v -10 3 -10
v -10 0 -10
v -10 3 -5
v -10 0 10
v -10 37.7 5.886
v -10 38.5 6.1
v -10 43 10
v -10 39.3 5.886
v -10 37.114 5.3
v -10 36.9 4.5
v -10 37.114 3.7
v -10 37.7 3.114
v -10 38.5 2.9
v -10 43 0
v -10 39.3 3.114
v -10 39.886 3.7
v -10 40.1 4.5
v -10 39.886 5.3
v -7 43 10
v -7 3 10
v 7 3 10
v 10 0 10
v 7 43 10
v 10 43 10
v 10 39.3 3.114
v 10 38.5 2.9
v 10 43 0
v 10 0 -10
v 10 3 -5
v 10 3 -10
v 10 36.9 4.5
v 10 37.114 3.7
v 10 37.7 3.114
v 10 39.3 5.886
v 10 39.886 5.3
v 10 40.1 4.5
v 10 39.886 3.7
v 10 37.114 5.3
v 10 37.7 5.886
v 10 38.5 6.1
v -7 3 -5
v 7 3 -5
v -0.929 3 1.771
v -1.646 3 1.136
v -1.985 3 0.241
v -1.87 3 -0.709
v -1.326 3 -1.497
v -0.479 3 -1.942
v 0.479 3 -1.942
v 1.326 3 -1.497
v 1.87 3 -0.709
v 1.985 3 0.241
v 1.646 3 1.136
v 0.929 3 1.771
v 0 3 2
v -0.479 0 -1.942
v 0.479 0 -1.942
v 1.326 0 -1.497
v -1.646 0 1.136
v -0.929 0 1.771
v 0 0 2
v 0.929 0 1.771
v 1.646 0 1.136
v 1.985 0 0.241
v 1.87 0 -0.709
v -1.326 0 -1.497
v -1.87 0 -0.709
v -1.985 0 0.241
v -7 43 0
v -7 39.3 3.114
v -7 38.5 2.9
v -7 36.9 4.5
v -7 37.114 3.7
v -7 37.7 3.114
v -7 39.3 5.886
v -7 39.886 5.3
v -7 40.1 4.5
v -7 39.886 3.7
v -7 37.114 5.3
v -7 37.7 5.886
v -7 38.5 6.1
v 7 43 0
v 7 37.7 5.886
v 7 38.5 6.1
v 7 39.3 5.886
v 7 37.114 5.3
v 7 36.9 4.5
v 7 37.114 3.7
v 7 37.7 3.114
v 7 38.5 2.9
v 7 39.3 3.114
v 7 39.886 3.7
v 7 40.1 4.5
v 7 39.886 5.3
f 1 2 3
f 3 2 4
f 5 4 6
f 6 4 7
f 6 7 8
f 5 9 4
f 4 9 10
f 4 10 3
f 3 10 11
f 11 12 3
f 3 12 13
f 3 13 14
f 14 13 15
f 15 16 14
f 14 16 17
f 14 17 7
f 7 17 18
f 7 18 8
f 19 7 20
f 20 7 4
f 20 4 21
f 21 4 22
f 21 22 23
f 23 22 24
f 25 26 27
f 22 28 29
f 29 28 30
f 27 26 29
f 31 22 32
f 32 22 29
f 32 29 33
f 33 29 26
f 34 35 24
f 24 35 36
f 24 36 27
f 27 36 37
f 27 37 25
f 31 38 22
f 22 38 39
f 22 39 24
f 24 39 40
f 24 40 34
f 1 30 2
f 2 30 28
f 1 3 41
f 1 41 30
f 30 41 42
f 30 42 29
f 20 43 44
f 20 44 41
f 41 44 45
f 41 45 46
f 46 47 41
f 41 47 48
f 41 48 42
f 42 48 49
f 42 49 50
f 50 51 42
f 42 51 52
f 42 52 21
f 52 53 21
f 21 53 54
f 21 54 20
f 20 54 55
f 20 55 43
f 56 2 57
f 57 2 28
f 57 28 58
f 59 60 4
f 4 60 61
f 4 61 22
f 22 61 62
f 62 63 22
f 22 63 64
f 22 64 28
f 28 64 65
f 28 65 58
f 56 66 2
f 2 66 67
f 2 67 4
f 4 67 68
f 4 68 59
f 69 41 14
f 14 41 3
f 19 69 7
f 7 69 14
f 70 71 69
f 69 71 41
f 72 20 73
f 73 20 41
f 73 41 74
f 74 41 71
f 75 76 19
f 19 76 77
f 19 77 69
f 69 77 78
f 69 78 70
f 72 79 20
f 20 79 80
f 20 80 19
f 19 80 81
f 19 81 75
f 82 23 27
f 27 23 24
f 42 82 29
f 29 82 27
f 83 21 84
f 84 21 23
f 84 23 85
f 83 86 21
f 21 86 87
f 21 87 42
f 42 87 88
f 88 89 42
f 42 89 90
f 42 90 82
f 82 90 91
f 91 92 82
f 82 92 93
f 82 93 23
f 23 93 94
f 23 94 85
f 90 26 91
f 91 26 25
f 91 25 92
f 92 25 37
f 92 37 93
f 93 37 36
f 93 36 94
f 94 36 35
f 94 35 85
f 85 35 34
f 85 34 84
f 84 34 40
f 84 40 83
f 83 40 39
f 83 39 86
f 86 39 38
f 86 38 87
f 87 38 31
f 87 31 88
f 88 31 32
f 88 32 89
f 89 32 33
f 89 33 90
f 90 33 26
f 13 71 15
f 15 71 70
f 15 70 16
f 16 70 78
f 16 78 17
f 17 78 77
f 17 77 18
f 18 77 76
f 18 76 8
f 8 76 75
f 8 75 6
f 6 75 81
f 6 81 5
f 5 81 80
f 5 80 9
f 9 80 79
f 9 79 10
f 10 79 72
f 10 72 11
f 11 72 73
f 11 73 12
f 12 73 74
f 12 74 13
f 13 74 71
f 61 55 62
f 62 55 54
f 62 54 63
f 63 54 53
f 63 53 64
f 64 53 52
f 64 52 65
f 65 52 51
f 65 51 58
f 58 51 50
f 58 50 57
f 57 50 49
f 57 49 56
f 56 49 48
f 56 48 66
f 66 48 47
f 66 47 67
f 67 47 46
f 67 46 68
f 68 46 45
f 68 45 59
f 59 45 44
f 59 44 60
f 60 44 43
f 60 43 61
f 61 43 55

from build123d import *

# Parameters (mm, degrees)
SKETCH_1_W          = 20
SKETCH_1_H          = 20
EXTRUDE_1_DEPTH     = 3
EXTRUDE_2_DEPTH     = 3
EXTRUDE_3_DEPTH     = 3
SKETCH_6_R          = 1.6
CUT_EXTRUDE_1_DEPTH = 21
SKETCH_8_R          = 2
CUT_EXTRUDE_2_DEPTH = 4


with BuildPart() as part:
    # 草图1 → 凸台-拉伸1 (new body)
    with BuildSketch(Plane(origin=(0, 0, 0), x_dir=(1, 0, 0), z_dir=(0, 1, 0))):
        Rectangle(SKETCH_1_W, SKETCH_1_H)
    extrude(amount=EXTRUDE_1_DEPTH)

    # 草图4 → 凸台-拉伸2 (add)
    with BuildSketch(Plane.ZY.offset(10)):
        Polygon((10, 3), (10, 43), (0, 43), (-5, 3), align=None)
    extrude(amount=-EXTRUDE_2_DEPTH)

    # 草图5 → 凸台-拉伸3 (add)
    with BuildSketch(Plane(origin=(10, 0, 0), x_dir=(0, 0, -1), z_dir=(1, 0, 0))):
        Polygon((-10, 3), (5, 3), (0, 43), (-10, 43), align=None)
    extrude(amount=-EXTRUDE_3_DEPTH)

    # 草图6 → 切除-拉伸1 (cut, through all)
    with BuildSketch(Plane(origin=(10, 0, 0), x_dir=(0, 0, -1), z_dir=(1, 0, 0))):
        with Locations((-4.5, 38.5)):
            Circle(SKETCH_6_R)
    extrude(amount=-CUT_EXTRUDE_1_DEPTH, mode=Mode.SUBTRACT)

    # 草图8 → 切除-拉伸2 (cut, through all)
    with BuildSketch(Plane(origin=(0, 3, 0), x_dir=(1, 0, 0), z_dir=(0, 1, 0))):
        Circle(SKETCH_8_R)
    extrude(amount=-CUT_EXTRUDE_2_DEPTH, mode=Mode.SUBTRACT)


solid = part.part
